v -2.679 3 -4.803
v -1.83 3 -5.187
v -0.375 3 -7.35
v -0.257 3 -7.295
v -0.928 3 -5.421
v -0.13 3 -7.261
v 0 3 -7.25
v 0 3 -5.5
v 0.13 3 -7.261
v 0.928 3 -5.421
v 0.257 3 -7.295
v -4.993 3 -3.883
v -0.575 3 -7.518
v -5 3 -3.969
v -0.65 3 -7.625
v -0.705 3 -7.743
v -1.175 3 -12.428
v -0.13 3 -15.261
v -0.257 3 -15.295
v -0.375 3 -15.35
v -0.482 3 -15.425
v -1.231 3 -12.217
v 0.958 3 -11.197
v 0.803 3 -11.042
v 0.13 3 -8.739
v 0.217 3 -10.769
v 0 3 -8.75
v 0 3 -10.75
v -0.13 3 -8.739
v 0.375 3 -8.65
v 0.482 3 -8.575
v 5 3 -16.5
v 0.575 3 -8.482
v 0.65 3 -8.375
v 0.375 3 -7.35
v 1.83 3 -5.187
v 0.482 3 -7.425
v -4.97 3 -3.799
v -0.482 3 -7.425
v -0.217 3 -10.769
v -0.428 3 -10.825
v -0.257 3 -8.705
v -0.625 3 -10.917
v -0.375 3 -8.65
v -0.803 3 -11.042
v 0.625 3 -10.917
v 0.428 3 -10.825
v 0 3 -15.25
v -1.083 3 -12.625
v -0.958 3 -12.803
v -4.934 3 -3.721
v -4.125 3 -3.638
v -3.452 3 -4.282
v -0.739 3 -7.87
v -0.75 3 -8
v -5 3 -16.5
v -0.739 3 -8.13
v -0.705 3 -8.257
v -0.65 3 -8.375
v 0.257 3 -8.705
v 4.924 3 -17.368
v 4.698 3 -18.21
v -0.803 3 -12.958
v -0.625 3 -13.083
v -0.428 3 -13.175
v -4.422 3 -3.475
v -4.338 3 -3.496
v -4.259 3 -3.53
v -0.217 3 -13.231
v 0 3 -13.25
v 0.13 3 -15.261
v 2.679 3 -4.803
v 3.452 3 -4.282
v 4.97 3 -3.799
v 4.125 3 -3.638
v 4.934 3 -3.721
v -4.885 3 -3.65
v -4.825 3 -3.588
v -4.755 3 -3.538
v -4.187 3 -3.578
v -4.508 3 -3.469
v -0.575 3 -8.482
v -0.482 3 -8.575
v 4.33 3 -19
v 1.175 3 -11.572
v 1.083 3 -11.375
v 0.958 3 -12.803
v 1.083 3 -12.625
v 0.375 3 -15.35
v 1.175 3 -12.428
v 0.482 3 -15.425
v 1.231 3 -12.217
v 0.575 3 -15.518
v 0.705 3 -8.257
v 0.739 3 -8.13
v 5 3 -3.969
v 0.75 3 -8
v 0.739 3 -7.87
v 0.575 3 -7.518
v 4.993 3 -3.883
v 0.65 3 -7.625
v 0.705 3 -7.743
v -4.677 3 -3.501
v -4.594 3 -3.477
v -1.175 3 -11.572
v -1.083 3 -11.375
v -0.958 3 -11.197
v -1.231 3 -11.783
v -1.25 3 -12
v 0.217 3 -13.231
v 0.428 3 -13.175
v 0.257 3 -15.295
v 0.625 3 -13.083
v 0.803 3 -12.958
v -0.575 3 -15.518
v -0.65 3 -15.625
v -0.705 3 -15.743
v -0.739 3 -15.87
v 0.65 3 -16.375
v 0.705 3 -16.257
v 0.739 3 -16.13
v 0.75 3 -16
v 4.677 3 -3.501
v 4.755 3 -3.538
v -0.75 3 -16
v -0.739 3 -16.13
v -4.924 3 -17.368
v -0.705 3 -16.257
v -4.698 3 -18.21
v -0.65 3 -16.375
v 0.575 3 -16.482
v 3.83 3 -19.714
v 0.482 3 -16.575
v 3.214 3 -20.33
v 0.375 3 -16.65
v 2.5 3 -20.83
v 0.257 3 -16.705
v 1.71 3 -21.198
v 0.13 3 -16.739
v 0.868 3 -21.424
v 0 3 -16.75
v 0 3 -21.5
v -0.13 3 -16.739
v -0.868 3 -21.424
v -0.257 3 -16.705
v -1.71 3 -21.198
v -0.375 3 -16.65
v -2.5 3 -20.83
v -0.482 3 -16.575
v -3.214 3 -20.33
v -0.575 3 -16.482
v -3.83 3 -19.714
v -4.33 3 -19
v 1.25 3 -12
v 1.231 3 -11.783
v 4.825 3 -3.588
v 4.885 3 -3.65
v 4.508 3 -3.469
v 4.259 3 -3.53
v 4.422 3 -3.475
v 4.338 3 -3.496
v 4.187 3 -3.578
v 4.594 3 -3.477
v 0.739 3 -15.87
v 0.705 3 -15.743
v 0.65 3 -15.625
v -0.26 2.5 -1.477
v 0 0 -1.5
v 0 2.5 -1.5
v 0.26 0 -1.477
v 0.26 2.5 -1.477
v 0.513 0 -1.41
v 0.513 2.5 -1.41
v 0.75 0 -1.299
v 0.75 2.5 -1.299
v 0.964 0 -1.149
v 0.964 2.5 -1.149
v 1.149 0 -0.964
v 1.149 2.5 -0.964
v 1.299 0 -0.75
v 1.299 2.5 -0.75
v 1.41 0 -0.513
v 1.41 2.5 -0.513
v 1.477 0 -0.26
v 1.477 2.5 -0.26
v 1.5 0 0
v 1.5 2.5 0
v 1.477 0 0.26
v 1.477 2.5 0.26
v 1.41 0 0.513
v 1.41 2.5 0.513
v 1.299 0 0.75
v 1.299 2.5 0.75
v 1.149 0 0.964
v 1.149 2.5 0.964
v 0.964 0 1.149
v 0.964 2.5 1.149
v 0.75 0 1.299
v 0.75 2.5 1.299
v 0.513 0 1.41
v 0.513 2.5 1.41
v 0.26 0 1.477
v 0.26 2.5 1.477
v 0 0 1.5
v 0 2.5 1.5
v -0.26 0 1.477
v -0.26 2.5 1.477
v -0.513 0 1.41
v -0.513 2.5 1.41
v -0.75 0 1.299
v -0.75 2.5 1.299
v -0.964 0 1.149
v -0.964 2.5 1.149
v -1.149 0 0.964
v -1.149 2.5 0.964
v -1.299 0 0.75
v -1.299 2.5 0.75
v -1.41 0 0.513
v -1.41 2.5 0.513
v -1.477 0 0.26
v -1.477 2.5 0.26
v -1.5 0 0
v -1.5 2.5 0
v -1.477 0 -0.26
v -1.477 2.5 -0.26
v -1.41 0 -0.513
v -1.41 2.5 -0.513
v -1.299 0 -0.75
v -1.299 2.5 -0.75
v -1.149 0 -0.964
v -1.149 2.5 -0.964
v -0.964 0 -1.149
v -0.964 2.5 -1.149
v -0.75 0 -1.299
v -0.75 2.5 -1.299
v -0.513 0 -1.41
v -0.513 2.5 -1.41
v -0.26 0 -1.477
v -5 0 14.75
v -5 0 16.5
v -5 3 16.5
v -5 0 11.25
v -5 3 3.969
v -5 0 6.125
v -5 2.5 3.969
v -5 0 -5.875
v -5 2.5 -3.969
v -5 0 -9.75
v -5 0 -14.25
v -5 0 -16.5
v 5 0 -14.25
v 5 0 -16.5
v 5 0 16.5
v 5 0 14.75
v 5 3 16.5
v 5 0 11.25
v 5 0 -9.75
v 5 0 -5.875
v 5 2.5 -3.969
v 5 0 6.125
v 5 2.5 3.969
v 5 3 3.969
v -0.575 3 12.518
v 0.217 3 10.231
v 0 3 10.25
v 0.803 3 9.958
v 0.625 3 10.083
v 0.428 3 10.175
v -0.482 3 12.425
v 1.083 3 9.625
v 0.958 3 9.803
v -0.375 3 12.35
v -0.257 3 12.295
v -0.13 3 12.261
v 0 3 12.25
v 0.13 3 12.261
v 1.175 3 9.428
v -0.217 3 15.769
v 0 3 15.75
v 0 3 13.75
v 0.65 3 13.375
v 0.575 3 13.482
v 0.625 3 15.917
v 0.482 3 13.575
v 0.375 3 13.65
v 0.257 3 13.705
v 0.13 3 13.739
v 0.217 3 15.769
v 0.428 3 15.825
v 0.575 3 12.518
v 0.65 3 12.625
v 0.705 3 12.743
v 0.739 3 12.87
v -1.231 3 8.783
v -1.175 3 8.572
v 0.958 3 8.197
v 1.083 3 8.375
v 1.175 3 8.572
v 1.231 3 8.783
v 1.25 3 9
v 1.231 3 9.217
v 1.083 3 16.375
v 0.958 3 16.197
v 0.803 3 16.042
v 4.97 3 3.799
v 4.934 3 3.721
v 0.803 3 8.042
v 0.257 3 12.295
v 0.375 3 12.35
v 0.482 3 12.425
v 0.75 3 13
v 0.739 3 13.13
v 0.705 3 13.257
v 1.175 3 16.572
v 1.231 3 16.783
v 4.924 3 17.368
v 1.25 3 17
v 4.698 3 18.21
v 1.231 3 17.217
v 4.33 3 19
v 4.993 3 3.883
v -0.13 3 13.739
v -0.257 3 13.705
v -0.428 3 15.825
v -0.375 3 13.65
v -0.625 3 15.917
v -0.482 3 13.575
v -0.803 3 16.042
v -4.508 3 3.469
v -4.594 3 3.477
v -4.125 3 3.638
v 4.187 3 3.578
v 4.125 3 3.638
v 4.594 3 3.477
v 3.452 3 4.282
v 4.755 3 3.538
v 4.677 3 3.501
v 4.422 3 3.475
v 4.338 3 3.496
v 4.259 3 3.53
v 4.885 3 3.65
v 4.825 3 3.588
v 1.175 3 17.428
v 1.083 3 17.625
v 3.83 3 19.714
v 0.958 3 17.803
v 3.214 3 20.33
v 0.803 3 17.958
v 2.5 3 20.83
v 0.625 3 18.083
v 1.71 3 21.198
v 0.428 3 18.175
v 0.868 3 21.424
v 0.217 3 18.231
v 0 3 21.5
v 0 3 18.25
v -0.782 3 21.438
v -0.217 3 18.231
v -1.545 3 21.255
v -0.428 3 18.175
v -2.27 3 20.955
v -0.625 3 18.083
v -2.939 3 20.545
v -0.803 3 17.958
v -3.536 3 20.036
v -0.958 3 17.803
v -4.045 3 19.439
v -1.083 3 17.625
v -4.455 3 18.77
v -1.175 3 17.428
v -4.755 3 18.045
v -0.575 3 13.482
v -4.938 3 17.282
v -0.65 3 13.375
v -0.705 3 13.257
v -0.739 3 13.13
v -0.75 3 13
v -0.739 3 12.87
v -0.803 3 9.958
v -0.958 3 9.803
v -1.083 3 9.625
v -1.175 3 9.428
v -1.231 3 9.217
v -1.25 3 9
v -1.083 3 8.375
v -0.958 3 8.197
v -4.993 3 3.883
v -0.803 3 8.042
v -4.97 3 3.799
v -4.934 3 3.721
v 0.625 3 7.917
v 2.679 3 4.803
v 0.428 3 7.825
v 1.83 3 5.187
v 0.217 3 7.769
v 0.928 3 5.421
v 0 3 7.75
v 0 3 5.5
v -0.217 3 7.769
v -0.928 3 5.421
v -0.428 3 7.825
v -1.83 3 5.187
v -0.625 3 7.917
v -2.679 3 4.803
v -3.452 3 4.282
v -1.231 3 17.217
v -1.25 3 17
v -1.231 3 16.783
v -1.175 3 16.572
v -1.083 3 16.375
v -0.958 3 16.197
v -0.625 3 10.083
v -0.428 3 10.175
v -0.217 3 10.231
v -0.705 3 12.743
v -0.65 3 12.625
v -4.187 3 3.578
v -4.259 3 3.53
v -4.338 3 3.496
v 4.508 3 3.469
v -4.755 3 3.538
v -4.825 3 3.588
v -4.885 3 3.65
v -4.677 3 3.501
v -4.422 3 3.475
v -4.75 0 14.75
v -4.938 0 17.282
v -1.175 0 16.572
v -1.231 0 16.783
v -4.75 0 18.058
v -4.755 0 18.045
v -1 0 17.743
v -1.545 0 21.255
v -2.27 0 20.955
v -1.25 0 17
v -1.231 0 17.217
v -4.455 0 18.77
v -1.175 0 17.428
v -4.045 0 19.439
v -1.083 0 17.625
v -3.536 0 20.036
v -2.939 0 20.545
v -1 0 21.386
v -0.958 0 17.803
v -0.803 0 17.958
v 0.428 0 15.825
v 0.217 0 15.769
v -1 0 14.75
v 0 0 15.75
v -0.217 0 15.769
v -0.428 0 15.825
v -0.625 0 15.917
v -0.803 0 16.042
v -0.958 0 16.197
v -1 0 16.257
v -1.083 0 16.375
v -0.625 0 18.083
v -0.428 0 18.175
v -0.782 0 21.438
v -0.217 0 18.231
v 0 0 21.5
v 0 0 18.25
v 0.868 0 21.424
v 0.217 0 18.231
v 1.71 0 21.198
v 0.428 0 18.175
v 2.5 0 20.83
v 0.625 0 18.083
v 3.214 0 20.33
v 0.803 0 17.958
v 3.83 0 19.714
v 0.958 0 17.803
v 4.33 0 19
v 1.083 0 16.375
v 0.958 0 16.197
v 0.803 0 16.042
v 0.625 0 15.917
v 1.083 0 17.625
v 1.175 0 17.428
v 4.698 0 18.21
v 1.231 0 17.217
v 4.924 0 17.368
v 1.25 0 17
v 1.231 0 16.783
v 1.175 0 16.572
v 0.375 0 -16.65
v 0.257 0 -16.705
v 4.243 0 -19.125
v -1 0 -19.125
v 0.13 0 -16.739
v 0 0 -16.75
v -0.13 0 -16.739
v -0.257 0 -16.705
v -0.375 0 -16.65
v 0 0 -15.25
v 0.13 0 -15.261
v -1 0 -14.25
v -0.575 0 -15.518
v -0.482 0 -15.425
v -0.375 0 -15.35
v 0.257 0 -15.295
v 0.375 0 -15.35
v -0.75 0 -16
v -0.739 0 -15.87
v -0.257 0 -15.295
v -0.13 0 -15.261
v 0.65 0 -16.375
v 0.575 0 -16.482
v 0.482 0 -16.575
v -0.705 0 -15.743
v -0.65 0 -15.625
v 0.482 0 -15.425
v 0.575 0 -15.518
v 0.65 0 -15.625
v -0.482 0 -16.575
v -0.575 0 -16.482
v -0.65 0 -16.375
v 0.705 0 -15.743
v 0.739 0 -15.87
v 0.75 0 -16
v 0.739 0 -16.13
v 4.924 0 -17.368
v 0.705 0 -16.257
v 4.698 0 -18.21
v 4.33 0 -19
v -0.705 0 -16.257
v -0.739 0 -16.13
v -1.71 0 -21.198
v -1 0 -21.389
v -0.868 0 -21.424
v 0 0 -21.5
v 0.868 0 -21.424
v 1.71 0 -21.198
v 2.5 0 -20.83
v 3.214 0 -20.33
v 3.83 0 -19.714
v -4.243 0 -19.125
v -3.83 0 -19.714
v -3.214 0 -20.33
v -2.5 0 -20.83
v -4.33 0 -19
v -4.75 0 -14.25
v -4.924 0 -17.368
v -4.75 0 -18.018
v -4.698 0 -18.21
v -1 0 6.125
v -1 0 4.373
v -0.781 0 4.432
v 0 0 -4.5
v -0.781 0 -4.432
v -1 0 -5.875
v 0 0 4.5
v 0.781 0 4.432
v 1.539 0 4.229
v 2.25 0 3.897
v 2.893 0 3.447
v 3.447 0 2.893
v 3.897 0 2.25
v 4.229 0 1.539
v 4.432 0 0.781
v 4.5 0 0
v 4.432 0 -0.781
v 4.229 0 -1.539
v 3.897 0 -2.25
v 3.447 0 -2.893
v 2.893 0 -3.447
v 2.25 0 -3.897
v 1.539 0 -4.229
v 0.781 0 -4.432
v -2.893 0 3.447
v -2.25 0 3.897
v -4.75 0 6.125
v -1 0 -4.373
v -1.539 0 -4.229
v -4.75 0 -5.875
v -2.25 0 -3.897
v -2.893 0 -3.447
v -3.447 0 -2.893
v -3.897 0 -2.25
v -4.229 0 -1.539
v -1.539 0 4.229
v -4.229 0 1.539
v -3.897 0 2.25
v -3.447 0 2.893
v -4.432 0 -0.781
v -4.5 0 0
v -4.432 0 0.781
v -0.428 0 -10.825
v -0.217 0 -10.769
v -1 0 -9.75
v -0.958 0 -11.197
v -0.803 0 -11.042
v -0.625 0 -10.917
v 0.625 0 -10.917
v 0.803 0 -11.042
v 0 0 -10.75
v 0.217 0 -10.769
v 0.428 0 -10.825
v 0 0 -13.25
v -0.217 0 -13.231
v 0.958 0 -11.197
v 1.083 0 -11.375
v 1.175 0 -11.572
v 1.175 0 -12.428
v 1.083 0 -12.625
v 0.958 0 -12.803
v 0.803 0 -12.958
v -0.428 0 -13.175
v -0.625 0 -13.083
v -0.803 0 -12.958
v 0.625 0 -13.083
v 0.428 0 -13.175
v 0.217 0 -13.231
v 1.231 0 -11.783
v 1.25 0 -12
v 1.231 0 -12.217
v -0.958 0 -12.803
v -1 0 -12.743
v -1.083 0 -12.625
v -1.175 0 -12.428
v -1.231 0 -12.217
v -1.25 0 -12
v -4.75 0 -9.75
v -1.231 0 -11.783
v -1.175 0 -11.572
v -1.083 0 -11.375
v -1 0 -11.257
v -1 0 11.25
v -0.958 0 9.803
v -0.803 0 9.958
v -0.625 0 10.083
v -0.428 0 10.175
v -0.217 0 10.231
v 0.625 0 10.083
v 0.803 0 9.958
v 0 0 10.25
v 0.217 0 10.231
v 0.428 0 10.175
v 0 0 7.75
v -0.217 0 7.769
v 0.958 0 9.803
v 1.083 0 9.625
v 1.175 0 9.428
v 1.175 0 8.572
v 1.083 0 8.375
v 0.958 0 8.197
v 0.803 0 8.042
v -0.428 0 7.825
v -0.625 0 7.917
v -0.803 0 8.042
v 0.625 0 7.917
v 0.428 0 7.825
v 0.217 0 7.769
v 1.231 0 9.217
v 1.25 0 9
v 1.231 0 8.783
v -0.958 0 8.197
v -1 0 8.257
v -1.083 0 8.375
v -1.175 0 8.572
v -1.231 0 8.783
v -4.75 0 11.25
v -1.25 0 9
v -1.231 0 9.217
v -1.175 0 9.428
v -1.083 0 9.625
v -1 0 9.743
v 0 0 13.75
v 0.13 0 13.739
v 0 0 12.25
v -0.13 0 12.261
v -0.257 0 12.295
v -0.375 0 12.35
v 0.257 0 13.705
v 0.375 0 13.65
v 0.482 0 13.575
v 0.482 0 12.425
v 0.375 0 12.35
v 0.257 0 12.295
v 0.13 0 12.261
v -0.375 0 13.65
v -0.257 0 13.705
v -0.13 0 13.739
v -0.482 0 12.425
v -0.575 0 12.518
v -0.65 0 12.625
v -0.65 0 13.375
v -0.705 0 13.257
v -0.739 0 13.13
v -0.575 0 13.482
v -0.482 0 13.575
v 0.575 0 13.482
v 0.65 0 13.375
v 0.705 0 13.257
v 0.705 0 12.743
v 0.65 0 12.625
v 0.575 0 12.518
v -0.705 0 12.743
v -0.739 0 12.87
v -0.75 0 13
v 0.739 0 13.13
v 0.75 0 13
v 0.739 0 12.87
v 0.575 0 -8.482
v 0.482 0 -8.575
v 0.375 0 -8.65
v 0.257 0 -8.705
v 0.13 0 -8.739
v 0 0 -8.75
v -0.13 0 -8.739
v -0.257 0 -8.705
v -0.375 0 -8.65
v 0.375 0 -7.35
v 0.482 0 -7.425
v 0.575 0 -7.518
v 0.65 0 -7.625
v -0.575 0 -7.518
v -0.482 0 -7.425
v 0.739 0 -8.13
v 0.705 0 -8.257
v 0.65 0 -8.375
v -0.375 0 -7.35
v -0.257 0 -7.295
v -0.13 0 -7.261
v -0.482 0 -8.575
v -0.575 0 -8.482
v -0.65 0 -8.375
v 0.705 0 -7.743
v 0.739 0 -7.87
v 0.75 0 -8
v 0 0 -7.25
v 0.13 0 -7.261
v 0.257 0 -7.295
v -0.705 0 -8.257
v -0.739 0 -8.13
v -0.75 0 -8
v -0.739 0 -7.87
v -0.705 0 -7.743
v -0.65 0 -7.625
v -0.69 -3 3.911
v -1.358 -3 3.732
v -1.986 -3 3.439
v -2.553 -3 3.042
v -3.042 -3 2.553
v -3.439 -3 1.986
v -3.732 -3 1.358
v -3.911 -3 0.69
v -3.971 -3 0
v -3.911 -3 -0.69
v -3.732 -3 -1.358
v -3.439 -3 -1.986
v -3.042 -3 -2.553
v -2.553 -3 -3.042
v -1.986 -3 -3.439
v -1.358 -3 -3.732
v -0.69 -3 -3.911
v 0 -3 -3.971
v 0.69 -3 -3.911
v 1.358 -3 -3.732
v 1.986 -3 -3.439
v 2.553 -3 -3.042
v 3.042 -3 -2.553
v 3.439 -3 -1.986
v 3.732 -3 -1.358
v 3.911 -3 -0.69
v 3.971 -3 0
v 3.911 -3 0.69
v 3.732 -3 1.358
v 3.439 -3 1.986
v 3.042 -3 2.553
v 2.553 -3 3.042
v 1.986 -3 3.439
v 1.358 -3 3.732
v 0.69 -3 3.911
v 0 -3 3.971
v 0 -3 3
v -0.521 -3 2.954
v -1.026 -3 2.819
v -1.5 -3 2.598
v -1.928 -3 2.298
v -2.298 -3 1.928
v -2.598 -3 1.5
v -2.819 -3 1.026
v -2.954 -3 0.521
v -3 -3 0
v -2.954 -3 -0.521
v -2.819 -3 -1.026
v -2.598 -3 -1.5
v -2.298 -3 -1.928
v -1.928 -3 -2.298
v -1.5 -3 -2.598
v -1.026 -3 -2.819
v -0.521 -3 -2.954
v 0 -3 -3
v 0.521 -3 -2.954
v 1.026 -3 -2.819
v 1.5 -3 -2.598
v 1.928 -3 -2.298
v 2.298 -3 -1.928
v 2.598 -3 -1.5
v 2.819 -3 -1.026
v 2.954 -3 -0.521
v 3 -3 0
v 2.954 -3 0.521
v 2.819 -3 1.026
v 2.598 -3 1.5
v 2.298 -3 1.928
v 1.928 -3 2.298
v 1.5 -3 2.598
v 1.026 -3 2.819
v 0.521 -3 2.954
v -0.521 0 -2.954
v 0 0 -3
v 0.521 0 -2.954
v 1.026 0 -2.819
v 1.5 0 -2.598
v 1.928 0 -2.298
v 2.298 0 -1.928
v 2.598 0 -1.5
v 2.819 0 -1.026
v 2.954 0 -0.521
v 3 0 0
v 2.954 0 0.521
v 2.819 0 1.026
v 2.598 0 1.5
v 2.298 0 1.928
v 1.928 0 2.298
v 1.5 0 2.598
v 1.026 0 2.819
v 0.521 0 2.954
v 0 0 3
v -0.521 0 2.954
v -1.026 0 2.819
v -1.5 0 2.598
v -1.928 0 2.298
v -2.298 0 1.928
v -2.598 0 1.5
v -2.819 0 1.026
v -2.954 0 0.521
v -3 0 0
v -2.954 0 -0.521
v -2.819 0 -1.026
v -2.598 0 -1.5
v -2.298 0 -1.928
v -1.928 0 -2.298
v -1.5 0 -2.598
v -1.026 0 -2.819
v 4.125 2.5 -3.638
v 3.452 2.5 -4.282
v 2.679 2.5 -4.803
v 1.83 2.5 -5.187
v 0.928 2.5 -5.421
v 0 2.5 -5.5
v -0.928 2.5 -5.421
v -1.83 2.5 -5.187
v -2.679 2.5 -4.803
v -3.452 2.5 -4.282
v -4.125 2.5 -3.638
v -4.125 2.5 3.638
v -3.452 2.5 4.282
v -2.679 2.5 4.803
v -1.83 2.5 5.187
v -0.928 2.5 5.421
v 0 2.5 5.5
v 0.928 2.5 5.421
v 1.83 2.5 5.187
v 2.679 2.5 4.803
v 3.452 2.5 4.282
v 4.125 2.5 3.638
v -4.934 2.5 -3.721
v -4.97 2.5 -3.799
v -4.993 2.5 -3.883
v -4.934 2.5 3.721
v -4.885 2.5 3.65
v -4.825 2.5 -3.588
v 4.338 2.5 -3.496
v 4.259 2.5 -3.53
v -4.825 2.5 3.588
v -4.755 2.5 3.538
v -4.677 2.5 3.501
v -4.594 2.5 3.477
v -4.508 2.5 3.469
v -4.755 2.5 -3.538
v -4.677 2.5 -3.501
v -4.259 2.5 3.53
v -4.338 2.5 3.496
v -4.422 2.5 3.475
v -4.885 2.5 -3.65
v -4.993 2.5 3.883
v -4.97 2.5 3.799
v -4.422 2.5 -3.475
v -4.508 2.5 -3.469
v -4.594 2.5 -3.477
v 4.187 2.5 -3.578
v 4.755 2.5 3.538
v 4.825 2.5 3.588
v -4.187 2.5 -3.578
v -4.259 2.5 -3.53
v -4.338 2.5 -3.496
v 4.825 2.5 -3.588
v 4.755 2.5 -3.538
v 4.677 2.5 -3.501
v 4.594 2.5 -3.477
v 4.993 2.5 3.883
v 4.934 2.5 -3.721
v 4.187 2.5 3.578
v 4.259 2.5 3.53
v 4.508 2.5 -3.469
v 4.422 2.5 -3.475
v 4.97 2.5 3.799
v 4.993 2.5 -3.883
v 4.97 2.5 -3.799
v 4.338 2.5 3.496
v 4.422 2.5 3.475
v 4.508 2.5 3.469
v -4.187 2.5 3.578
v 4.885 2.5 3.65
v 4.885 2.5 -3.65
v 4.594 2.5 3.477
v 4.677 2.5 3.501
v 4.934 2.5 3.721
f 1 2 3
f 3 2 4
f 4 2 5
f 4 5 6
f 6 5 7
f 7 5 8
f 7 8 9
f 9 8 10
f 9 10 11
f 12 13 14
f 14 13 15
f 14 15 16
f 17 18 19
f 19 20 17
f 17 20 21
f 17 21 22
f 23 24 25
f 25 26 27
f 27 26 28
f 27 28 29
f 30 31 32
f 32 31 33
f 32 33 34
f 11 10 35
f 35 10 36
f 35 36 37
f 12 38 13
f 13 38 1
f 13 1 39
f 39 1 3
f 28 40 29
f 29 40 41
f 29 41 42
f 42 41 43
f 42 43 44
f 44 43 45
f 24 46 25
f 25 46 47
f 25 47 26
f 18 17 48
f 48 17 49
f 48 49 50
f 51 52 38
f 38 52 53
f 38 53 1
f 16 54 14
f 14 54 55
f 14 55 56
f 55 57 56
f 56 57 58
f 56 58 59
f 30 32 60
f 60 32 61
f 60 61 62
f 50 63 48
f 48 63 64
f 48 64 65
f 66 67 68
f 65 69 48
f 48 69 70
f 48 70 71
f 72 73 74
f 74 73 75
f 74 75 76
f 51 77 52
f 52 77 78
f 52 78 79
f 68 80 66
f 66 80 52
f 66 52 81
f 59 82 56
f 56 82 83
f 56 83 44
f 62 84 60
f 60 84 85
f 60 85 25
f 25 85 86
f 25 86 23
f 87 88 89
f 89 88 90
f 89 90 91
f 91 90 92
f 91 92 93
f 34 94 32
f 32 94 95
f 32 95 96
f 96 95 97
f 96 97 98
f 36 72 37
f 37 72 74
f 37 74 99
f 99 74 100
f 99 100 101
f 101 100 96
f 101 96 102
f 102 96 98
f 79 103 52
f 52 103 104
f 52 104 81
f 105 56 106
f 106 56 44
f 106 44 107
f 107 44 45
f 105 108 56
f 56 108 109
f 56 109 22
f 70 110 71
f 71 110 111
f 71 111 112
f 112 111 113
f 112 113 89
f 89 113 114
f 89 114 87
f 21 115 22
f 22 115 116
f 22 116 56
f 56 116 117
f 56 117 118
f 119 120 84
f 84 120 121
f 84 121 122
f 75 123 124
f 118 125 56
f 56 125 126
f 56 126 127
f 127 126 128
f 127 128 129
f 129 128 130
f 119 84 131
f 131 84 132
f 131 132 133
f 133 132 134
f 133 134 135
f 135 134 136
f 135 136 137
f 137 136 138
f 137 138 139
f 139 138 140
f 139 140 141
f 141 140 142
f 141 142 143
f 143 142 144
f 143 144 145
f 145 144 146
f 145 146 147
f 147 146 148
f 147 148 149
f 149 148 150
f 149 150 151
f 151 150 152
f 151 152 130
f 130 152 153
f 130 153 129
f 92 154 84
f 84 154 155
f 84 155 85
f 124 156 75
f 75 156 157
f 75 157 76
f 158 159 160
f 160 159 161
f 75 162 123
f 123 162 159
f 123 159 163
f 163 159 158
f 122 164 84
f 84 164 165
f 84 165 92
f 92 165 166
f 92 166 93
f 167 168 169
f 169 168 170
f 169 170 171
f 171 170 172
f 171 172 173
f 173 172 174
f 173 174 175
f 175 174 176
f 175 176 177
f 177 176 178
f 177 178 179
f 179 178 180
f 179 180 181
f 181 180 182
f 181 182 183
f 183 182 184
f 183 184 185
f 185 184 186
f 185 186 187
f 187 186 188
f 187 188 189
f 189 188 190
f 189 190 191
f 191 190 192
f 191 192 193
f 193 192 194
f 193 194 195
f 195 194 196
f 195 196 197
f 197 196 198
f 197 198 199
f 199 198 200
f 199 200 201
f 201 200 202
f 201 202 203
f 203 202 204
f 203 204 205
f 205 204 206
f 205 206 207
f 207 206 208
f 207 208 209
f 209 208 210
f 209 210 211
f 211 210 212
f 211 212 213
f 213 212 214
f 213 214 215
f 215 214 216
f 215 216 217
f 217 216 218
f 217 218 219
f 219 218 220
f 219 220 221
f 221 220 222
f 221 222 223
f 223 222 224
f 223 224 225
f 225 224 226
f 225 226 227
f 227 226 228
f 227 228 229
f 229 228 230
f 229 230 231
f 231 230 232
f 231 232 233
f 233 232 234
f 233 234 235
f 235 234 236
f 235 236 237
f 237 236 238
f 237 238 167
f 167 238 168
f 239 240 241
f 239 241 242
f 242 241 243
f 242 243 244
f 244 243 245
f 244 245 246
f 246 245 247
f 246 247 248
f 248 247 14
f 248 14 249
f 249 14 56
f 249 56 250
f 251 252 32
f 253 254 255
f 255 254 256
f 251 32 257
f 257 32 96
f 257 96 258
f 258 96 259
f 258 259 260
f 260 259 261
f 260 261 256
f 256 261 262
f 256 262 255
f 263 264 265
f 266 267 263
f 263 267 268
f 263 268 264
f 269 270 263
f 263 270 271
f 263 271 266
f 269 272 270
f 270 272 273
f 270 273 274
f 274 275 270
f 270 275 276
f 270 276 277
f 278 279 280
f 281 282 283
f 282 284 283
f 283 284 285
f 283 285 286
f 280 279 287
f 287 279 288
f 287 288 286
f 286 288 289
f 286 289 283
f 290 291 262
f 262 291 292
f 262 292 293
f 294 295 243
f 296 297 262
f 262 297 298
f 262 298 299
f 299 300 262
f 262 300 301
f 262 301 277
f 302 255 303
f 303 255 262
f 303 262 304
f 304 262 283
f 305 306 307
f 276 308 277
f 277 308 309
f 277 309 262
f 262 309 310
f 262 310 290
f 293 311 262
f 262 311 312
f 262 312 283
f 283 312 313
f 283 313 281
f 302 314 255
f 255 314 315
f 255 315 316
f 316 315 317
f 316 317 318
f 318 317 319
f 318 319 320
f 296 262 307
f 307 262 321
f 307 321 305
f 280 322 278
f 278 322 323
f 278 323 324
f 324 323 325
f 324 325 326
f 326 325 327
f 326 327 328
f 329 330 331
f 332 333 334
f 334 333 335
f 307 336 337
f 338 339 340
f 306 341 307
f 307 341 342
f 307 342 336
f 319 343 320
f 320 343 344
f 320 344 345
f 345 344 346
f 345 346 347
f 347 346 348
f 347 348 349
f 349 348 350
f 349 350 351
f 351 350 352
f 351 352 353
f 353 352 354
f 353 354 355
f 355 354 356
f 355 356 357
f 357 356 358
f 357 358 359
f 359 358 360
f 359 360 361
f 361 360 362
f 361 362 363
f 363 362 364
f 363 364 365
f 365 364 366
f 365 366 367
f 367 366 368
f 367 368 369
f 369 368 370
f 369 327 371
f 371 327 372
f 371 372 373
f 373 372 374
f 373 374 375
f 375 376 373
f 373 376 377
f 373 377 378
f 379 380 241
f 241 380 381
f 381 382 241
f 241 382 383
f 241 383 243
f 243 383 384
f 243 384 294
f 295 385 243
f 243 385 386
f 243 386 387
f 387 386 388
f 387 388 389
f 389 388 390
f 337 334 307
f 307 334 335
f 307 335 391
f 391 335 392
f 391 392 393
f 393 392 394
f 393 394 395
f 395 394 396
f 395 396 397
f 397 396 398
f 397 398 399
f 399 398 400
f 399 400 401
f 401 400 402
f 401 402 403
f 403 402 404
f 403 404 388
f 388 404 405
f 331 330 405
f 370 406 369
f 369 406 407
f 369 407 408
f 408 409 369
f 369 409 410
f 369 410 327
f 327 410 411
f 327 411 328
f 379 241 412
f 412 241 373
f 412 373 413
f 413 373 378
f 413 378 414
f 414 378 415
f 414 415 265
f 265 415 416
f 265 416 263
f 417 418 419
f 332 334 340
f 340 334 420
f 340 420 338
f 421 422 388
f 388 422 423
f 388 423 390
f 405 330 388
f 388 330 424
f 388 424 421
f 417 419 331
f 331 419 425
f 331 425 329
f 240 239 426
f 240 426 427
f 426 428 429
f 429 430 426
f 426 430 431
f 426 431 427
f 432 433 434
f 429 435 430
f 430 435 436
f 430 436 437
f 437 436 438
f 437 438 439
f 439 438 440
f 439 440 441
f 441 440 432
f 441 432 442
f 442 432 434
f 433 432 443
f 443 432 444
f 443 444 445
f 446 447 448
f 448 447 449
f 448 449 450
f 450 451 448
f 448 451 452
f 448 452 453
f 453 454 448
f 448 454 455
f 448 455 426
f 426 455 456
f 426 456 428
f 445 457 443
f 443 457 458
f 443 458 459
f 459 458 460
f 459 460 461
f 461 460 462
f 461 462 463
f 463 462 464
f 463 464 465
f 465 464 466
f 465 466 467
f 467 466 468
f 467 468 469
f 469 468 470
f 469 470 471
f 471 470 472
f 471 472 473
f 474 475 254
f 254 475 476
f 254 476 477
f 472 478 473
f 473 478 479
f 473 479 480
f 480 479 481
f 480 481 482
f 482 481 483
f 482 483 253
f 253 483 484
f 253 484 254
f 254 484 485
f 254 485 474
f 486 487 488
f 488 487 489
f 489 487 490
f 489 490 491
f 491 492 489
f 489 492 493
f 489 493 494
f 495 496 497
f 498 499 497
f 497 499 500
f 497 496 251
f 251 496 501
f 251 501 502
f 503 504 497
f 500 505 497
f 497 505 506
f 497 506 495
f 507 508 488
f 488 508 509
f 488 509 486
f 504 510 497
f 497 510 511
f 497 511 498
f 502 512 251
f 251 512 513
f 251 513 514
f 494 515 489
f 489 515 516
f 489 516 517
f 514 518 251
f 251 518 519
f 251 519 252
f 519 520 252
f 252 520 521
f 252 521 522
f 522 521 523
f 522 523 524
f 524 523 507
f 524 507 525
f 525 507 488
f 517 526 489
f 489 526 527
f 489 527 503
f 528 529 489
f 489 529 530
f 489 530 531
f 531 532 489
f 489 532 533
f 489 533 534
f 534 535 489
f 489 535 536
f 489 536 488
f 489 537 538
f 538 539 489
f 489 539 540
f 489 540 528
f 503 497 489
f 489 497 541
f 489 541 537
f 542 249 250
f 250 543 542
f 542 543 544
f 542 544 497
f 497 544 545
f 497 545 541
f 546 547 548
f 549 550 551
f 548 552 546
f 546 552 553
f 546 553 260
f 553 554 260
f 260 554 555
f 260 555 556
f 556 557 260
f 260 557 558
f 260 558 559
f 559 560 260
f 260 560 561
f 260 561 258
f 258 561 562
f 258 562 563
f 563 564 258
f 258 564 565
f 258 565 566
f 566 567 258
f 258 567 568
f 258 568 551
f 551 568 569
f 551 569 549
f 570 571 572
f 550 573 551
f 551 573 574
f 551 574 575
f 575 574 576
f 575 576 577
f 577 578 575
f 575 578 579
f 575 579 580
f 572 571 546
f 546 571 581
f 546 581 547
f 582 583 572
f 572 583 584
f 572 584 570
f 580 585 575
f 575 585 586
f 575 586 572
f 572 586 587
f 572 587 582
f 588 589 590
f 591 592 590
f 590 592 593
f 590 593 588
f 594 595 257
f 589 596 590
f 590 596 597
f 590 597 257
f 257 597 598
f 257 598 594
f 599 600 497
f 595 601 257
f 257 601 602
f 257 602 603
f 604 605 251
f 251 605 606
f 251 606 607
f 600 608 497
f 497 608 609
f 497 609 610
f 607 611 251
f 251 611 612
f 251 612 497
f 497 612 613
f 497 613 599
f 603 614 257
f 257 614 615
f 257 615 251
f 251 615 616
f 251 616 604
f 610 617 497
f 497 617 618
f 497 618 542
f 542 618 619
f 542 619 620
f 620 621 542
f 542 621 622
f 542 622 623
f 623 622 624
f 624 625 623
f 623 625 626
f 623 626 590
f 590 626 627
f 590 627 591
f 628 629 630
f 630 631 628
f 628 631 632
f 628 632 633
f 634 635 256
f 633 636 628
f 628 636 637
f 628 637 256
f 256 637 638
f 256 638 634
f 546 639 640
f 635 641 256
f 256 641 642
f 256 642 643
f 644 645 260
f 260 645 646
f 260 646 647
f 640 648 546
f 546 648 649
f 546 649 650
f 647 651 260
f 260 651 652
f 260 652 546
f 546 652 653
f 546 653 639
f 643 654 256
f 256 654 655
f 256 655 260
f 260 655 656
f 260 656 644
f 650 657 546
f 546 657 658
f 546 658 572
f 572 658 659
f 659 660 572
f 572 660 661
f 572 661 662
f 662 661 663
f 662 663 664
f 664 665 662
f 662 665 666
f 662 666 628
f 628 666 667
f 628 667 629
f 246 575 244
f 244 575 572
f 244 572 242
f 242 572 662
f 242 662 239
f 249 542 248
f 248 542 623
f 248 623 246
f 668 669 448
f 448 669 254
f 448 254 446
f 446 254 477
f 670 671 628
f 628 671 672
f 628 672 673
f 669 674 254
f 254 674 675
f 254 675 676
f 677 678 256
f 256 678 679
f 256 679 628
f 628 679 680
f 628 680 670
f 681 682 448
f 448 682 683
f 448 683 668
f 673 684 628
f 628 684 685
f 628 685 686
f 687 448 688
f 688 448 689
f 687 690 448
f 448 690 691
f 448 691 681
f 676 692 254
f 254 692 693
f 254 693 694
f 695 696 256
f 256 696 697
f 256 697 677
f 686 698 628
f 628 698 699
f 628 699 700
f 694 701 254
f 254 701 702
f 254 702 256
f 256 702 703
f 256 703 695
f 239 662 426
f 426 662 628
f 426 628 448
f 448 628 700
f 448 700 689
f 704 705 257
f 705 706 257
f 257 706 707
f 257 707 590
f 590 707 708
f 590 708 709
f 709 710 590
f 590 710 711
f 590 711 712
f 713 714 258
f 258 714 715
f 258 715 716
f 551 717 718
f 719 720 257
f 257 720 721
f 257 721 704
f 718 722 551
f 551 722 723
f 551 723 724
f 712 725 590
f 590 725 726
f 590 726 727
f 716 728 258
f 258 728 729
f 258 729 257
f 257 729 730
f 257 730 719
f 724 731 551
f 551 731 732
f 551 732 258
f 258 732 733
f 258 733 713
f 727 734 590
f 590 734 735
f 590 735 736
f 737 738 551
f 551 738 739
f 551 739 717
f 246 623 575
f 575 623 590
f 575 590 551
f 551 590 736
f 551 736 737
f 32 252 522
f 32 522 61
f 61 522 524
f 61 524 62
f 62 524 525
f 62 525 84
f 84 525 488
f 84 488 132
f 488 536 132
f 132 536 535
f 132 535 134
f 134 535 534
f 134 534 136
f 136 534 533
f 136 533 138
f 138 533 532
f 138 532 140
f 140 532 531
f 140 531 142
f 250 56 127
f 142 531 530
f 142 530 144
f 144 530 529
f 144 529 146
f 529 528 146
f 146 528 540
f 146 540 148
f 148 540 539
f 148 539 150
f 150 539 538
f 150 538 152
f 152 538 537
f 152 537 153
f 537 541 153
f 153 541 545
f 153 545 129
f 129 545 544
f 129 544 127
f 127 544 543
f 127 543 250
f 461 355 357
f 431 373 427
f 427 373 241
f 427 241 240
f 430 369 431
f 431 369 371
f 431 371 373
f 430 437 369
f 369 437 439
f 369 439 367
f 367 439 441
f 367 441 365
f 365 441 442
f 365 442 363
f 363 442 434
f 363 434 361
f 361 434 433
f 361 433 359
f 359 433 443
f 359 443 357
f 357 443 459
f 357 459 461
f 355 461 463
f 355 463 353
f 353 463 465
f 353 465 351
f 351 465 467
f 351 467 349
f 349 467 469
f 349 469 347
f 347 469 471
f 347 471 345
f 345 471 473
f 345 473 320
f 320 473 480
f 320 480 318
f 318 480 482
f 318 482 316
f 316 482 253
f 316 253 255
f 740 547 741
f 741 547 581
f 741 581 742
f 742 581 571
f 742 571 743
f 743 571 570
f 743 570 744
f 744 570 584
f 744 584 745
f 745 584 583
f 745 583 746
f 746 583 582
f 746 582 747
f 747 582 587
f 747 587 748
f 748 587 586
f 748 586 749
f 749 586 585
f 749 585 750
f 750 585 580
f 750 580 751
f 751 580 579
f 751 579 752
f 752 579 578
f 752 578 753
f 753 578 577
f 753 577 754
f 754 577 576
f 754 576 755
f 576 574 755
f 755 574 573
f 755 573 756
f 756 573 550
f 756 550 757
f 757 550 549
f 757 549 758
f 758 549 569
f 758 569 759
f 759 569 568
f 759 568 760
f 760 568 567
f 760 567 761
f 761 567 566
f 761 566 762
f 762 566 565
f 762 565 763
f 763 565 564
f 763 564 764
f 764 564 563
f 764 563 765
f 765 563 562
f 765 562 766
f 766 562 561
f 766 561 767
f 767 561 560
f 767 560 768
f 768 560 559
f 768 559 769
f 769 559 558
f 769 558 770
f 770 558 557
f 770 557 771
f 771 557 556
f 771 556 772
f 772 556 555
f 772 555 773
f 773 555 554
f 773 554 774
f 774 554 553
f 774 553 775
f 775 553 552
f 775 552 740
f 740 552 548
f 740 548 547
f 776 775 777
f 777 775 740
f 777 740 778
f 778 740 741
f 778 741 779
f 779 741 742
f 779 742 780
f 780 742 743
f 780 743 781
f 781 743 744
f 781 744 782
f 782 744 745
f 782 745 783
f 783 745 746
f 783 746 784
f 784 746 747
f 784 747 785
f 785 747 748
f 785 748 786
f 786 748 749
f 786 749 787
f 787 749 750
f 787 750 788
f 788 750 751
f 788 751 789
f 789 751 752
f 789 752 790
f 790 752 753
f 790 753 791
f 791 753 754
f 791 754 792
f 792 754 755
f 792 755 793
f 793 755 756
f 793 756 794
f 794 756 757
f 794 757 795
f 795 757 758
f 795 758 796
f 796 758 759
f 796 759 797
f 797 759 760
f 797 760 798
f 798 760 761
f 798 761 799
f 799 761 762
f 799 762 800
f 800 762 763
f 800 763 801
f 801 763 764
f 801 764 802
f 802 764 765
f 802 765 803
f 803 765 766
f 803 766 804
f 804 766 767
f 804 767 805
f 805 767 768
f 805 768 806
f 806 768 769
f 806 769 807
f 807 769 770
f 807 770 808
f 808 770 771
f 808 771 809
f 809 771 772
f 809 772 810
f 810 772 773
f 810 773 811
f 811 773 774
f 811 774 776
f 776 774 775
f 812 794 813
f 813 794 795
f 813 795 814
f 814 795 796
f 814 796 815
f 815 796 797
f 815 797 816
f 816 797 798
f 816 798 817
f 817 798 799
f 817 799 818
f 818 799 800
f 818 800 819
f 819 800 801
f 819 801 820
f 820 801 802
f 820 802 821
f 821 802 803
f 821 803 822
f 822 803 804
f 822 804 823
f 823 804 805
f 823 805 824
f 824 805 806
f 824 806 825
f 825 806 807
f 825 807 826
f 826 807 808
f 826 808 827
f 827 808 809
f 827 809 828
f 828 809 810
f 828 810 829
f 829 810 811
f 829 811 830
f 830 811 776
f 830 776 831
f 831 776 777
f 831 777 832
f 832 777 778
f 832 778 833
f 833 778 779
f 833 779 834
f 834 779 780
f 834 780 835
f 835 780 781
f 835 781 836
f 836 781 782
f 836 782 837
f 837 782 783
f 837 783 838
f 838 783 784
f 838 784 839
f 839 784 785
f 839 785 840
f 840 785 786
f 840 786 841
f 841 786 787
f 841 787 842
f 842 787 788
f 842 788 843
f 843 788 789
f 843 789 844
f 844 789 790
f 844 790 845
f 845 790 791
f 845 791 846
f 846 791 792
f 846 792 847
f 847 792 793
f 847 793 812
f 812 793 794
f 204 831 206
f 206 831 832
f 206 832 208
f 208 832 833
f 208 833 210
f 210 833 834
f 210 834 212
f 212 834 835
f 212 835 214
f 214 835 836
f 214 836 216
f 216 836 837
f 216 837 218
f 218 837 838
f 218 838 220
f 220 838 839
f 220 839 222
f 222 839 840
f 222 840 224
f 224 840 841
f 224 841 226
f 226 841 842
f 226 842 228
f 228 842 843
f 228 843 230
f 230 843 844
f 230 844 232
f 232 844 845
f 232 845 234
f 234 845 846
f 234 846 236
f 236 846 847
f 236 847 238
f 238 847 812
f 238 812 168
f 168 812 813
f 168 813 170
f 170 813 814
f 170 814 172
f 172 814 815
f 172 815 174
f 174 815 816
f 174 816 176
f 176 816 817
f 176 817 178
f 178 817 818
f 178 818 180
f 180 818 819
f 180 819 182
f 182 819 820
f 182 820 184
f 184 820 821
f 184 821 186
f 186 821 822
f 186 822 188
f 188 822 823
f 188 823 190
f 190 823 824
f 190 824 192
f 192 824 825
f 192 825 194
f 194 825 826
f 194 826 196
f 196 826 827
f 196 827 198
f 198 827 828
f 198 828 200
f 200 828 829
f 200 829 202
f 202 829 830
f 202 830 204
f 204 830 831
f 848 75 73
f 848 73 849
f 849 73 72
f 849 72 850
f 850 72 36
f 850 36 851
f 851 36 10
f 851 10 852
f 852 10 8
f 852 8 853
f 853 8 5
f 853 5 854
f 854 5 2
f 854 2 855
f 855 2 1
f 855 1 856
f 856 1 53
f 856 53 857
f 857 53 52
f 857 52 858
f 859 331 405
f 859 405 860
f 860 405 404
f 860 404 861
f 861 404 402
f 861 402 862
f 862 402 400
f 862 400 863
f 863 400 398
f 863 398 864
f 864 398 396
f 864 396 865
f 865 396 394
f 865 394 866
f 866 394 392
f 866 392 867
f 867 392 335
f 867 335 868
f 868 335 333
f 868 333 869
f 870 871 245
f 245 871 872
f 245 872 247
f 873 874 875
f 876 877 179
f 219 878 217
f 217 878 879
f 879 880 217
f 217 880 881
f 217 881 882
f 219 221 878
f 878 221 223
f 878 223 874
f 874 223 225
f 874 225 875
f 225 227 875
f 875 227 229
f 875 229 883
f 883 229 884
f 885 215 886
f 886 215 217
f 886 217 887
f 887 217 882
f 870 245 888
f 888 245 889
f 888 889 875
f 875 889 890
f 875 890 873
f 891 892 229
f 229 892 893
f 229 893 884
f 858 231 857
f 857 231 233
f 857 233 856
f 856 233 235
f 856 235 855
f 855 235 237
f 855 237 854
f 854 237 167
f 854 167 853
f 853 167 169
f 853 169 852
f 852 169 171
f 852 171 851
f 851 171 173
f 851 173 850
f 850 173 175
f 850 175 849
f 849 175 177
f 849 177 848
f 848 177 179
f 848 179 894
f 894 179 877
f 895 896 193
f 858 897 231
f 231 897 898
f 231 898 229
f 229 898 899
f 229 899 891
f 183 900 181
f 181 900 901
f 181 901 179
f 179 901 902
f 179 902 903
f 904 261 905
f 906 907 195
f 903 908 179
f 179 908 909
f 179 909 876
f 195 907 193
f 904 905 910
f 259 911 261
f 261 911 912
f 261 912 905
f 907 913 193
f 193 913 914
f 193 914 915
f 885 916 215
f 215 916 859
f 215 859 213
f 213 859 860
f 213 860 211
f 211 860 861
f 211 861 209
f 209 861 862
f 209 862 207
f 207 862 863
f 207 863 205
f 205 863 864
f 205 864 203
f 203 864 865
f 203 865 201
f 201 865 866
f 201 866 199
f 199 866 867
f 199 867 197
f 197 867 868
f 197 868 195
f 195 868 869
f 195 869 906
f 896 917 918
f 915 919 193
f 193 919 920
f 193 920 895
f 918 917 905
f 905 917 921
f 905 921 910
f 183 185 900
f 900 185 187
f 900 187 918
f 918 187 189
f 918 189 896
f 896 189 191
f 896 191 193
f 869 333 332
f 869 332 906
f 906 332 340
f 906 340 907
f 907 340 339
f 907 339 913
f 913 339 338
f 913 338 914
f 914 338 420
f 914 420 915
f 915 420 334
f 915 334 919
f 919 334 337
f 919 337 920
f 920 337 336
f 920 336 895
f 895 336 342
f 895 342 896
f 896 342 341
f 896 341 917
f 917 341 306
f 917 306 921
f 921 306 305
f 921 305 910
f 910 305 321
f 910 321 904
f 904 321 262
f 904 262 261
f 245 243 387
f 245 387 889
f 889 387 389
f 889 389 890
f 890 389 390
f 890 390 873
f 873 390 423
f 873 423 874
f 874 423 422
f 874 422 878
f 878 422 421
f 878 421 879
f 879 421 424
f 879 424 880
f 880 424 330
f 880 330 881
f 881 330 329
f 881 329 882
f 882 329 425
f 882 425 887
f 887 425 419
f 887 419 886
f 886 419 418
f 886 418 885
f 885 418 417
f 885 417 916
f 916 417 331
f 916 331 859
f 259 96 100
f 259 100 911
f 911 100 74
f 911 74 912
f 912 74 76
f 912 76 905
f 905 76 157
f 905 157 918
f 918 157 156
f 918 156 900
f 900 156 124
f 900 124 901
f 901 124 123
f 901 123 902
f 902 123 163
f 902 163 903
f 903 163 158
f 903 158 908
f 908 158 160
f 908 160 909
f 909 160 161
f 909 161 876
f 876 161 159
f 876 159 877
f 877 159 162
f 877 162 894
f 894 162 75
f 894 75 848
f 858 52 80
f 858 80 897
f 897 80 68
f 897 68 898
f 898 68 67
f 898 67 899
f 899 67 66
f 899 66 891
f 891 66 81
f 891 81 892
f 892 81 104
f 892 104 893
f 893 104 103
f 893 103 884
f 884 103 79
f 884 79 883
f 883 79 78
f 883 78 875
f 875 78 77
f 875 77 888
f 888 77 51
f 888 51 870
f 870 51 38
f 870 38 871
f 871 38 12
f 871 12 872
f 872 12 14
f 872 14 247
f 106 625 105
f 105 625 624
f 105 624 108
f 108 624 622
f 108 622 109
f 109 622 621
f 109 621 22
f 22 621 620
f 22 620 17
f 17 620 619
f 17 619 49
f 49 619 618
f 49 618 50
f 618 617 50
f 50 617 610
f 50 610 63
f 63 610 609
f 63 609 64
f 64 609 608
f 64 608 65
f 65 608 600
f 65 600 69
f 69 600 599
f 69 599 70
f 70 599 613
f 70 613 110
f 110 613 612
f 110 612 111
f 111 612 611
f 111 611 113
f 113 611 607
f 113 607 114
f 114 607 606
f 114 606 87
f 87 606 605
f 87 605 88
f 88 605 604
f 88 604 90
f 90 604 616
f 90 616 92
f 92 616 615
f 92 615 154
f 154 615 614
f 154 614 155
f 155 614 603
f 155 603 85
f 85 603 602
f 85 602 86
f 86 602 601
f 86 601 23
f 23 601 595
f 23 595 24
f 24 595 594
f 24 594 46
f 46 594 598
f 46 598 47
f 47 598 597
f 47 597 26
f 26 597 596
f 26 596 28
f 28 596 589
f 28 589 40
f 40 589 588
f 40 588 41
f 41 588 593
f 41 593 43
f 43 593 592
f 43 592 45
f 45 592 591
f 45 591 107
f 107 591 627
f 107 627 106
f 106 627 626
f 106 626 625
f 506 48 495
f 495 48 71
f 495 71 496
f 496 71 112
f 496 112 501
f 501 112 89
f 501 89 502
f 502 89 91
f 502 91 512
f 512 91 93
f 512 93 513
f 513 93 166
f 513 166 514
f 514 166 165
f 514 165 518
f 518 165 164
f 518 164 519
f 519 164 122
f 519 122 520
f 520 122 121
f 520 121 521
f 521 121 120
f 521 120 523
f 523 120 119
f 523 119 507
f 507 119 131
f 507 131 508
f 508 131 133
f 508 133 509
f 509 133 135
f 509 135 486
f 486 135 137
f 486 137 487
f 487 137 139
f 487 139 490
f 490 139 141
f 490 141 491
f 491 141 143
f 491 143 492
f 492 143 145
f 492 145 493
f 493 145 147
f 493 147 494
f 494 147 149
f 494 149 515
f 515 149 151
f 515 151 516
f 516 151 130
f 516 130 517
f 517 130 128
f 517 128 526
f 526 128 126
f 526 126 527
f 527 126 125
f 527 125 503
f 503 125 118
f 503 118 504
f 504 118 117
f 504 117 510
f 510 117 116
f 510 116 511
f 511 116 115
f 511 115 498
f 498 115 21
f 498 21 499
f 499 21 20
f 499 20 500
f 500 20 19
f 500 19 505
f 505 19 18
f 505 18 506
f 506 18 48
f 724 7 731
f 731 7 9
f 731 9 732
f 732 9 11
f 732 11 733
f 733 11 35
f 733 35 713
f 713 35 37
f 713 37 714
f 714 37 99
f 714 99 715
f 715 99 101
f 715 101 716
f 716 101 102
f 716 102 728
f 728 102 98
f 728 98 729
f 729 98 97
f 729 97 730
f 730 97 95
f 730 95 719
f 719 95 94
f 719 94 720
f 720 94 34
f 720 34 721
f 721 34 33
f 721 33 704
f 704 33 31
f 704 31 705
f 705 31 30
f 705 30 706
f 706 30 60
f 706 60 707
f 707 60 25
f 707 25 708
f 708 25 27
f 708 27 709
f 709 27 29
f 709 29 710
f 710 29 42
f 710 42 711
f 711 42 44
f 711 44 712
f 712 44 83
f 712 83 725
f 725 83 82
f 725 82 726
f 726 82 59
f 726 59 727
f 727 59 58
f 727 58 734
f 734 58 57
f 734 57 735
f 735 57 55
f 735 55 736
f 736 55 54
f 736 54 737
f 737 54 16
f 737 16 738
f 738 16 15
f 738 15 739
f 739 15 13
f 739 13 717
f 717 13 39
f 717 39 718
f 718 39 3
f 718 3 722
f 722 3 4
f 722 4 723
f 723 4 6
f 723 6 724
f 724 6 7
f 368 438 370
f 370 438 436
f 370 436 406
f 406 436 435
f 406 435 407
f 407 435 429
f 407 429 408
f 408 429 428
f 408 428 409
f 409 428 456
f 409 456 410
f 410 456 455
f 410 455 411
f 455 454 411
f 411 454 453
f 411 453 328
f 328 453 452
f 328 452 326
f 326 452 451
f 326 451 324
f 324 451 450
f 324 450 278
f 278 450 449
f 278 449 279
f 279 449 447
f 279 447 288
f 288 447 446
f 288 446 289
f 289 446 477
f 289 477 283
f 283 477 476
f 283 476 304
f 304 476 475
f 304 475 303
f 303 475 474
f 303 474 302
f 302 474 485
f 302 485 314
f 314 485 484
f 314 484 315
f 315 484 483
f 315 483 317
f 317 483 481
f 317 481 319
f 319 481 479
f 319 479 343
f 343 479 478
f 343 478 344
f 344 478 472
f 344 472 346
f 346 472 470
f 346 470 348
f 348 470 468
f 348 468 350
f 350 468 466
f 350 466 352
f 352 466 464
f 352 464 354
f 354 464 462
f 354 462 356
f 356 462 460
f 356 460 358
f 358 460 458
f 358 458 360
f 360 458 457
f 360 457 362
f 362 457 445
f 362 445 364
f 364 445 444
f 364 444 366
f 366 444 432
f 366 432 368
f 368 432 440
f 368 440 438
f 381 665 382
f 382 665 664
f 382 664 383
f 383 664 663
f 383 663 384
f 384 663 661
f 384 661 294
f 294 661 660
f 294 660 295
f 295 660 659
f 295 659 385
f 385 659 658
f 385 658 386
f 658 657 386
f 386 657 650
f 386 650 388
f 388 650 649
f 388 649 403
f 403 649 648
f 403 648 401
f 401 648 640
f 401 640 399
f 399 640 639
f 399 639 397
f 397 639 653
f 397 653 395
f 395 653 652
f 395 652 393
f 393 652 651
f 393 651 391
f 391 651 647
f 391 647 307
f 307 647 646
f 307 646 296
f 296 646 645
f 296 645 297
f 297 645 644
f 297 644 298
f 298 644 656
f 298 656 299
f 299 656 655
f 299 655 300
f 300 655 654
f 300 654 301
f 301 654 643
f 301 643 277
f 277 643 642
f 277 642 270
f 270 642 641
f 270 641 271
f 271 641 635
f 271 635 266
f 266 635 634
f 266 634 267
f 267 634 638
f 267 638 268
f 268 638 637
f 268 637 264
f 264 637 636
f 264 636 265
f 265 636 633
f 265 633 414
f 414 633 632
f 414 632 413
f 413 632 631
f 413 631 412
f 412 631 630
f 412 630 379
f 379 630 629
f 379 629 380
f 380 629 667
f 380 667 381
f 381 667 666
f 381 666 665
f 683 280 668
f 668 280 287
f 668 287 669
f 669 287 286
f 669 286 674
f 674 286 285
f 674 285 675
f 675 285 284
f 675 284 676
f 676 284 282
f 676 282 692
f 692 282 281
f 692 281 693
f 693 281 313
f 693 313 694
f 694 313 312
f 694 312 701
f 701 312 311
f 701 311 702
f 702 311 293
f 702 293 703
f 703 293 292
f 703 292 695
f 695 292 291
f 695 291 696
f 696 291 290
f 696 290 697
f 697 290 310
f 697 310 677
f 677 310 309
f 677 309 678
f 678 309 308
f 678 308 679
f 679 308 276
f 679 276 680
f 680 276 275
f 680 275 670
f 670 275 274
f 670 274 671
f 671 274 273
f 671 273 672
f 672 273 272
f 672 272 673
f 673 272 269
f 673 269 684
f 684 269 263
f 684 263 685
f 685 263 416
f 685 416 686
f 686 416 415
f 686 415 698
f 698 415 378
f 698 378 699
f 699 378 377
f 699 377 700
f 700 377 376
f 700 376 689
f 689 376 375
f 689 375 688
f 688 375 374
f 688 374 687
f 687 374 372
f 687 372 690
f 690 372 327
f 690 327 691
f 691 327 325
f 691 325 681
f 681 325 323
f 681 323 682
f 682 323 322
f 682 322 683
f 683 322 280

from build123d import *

# Parameters (mm, degrees)
SKETCH1_W           = 10
SKETCH1_H           = 43
BOSS_EXTRUDE1_DEPTH = 3
FILLET1_R           = 5
SKETCH2_R           = 4.5
BOSS_EXTRUDE2_DEPTH = 3
DRAFT1_ANGLE        = 10
SKETCH3_R           = 3
CUT_EXTRUDE1_DEPTH  = 3
SKETCH4_R           = 1.5
CUT_EXTRUDE2_DEPTH  = 23.27666941
SKETCH5_R           = 5.5
CUT_EXTRUDE3_DEPTH  = 0.5
FILLET2_R           = 0.5
SKETCH6_R           = 1.25
SKETCH6_R_2         = 0.75
CUT_EXTRUDE4_DEPTH  = 23.874658467


with BuildPart() as part:
    # Sketch1 → Boss-Extrude1 (new body)
    with BuildSketch(Plane(origin=(0, 0, 0), x_dir=(1, 0, 0), z_dir=(0, 1, 0))):
        Rectangle(SKETCH1_W, SKETCH1_H)
    extrude(amount=BOSS_EXTRUDE1_DEPTH)

    # Fillet1
    fillet1_edges = [part.edges().sort_by_distance(p)[0] for p in [
        (-5, 1.5, -21.5),
        (5, 1.5, -21.5),
        (5, 1.5, 21.5),
        (-5, 1.5, 21.5),
    ]]
    fillet(fillet1_edges, radius=FILLET1_R - 0.0001)  # a hair under: the kernel refuses the full size

    # Sketch2 → Boss-Extrude2 (add)
    with BuildSketch(Plane(origin=(0, 0, 0), x_dir=(1, 0, 0), z_dir=(0, 1, 0))):
        with Locations(Location((0, 0, 0), (0, 0, 270))):
            Circle(SKETCH2_R)
    extrude(amount=-BOSS_EXTRUDE2_DEPTH)

    # Draft1
    draft1_faces = [part.faces().sort_by_distance(p)[0] for p in [
        (0, -1.5, -4.5),
    ]]
    draft(draft1_faces, Plane(origin=(0, 0, 0), x_dir=(0, 0, -1), z_dir=(0, -1, 0)), DRAFT1_ANGLE)

    # Sketch3 → Cut-Extrude1 (cut)
    with BuildSketch(Plane.XZ.offset(3)):
        with Locations(Location((0, 0, 0), (0, 0, 270))):
            Circle(SKETCH3_R)
    extrude(amount=-CUT_EXTRUDE1_DEPTH, mode=Mode.SUBTRACT)

    # Sketch4 → Cut-Extrude2 (cut, through all)
    with BuildSketch(Plane.XZ):
        with Locations(Location((0, 0, 0), (0, 0, 270))):
            Circle(SKETCH4_R)
    extrude(amount=-CUT_EXTRUDE2_DEPTH, mode=Mode.SUBTRACT)

    # Sketch5 → Cut-Extrude3 (cut)
    with BuildSketch(Plane(origin=(0, 3, 0), x_dir=(1, 0, 0), z_dir=(0, 1, 0))):
        Circle(SKETCH5_R)
    extrude(amount=-CUT_EXTRUDE3_DEPTH, mode=Mode.SUBTRACT)

    # Fillet2
    fillet2_edges = [part.edges().sort_by_distance(p)[0] for p in [
        (-5, 2.75, -2.291287847),
        (5, 2.75, -2.291287847),
        (-5, 2.75, 2.291287847),
        (5, 2.75, 2.291287847),
    ]]
    fillet(fillet2_edges, radius=FILLET2_R)

    # Sketch6 → Cut-Extrude4 (cut, through all)
    with BuildSketch(Plane(origin=(0, 3, 0), x_dir=(1, 0, 0), z_dir=(0, 1, 0))):
        with Locations(Location((0, 12, 0), (0, 0, 270))):
            Circle(SKETCH6_R)
        with Locations(Location((0, 16, 0), (0, 0, 270))):
            Circle(SKETCH6_R_2)
        with Locations(Location((0, 8, 0), (0, 0, 270))):
            Circle(SKETCH6_R_2)
        with Locations(Location((0, -17, 0), (0, 0, 270))):
            Circle(SKETCH6_R)
        with Locations(Location((0, -9, 0), (0, 0, 270))):
            Circle(SKETCH6_R)
        with Locations(Location((0, -13, 0), (0, 0, 270))):
            Circle(SKETCH6_R_2)
    extrude(amount=-CUT_EXTRUDE4_DEPTH, mode=Mode.SUBTRACT)


solid = part.part
